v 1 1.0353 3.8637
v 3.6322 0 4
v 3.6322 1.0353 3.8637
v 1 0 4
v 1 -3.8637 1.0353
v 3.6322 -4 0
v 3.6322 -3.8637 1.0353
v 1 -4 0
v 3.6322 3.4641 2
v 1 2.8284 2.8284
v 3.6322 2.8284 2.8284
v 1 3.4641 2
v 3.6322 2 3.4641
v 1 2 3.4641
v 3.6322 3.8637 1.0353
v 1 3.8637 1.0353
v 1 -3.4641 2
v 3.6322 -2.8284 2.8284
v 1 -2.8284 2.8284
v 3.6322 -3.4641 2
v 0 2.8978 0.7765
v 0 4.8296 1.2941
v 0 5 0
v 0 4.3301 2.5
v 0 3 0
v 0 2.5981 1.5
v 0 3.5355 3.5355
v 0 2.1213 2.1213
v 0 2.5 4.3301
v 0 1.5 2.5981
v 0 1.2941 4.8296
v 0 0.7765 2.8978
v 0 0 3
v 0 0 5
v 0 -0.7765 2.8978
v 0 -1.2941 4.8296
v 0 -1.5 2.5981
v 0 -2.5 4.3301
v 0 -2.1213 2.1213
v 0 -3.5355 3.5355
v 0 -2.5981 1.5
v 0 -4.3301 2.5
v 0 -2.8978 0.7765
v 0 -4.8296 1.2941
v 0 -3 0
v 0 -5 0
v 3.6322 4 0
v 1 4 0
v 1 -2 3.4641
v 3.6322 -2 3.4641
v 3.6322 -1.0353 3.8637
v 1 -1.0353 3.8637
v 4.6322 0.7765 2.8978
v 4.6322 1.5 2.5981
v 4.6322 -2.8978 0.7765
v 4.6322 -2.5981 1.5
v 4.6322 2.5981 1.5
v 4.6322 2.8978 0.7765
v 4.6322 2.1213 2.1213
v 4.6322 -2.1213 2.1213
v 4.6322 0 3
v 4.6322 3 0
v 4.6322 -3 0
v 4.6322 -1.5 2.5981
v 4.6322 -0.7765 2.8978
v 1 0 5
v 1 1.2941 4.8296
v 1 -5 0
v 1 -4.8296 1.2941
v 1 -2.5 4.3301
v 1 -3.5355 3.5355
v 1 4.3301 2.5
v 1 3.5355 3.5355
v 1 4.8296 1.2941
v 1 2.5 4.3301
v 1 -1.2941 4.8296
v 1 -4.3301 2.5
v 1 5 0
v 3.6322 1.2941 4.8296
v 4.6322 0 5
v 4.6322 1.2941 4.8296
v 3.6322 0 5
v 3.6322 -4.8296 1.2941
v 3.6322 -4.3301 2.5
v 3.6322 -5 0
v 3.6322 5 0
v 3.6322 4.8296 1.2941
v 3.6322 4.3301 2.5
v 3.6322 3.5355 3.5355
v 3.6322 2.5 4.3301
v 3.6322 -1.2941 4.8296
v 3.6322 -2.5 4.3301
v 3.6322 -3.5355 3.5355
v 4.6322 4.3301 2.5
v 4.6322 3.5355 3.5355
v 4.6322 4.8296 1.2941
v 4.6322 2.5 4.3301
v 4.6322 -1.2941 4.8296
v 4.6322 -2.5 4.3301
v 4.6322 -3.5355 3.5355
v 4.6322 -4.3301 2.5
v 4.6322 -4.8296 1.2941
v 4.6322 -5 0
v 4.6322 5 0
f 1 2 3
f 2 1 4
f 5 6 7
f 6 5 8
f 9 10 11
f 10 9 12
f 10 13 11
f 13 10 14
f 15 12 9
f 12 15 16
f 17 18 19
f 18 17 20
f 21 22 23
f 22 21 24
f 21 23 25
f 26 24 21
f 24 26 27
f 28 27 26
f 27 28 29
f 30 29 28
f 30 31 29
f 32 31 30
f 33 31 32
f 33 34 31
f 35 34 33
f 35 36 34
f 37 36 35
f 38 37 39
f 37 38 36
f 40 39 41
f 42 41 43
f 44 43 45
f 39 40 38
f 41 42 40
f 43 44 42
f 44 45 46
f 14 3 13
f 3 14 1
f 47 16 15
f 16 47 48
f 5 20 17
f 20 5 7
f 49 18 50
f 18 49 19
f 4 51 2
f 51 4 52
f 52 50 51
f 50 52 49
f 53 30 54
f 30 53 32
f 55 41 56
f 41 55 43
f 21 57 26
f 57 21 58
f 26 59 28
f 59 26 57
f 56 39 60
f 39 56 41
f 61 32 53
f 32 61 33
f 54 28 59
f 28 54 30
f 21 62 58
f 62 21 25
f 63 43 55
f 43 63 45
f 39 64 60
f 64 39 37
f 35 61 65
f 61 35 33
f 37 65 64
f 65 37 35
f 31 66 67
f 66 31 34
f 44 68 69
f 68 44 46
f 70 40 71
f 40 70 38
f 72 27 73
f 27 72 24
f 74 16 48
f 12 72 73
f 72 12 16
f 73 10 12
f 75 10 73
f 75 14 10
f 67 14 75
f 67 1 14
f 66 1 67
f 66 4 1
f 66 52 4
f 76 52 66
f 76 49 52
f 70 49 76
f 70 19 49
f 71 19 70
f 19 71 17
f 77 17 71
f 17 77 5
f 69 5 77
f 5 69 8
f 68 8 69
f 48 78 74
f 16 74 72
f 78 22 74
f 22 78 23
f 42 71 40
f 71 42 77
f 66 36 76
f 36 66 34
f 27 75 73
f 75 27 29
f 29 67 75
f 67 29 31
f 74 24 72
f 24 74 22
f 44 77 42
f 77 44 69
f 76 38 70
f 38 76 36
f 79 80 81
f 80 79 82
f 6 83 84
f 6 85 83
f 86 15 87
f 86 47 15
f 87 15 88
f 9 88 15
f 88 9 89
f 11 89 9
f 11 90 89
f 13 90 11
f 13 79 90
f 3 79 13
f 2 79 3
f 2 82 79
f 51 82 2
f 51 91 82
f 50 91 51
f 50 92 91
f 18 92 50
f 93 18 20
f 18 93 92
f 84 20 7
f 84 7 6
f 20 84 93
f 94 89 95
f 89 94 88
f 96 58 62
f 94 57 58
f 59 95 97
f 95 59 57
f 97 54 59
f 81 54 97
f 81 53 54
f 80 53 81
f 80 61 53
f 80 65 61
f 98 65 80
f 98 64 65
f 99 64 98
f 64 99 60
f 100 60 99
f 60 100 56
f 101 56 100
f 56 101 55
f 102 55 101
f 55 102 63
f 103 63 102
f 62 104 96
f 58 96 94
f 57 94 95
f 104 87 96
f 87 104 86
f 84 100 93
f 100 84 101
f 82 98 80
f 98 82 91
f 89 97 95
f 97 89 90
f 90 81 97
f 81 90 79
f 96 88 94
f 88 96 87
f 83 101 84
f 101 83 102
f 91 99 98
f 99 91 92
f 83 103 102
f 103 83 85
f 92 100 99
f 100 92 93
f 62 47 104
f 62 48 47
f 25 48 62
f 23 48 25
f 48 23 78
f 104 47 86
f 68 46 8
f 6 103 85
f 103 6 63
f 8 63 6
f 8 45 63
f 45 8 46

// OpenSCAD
// file: ../build_environments.scad
// build_environments.scad: modules to build level sections
//

module pool(diameter=10.0, wall_height=2.0, step_width=3.0, connections=[])
{
    difference() {
        union() {
        difference() {
            cylinder(h=0.5,r1=diameter+step_width,r2=diameter+step_width,$fn=48);
            translate([0,0,-0.1])
                cylinder(h=0.7,r1=diameter,r2=diameter,$fn=48);
        }
        difference() {
            cylinder(h=wall_height,r1=diameter+step_width+1.0,r2=diameter+step_width+1.0,$fn=48);
            translate([0,0,-0.1])
                cylinder(h=wall_height+0.2,r1=diameter+step_width,r2=diameter+step_width,$fn=48);
        }
        }
    
        for (c = connections)
        {
            rotate([0,90,0]) {
                angle = atan2(c[1],c[0]);
                rotate([-angle,0,0]) {
                    cylinder(h=diameter+5.0,r1=c[2],r2=c[2],$fn=48);
                }
            }
        }
    }
}

module straight(length=10.0, width=2.0, dy1=0.0, dy2=0.0, dz=0.0)
{
    dims = [0, 0, 0, 0, 0, (dz/length)];
    matrix = [
        [ 1, dims[0], dims[1], 0 ],
        [ dims[2], 1, dims[4], 0 ],
        [ dims[5], dims[3], 1, 0 ],
        [ 0, 0, 0, 1 ]
    ];
    multmatrix(matrix)
    difference() {
        translate([dy1,0,0])
        union() {
            rotate([0,90,0]) {
                difference() {
                    cylinder(h=(length-dy1-dy2),r1=width+1.0,r2=width+1.0,$fn=24);
                    translate([0,0,-0.1])
                        cylinder(h=(length-dy1-dy2+0.2),r1=width,r2=width,$fn=24);
                }
                difference() {
                    cylinder(h=1.0,r1=width+2.0,r2=width+2.0,$fn=24);
                    translate([0,0,-0.1])
                        cylinder(h=1.2,r1=width,r2=width,$fn=24);
                }
                translate([0,0,(length-dy1-dy2)-1.0]) {
                    difference() {
                        cylinder(h=1.0,r1=width+2.0,r2=width+2.0,$fn=24);
                        translate([0,0,-0.1])
                            cylinder(h=1.2,r1=width,r2=width,$fn=24);
                    }
                }
            }
        }
        translate([0,0,-(2*width+4.0)/2])
            cube([3*length,3*length,2*width+4.0],center=true);
    }
}

module curve(p0=[0,0], center=[0,0], dir=1, angle=0.0, width=2.0)
{
    radius = sqrt((p0[0]-center[0])*(p0[0]-center[0]) + (p0[1]-center[1])*(p0[1]-center[1]));
    if (dir == 0) {
        difference() {
            rotate([0,0,-90])
            difference() {
                rotate_extrude(angle = angle, convexity = 10, $fn=32)
                    translate([radius, 0, 0])
                        circle(r = width+1.0,$fn=24);
                rotate([0,0,-1.0])
                    rotate_extrude(angle = angle+2.0, convexity = 10, $fn=32)
                        translate([radius, 0, 0])
                            circle(r = width,$fn=24);
            }
            translate([0,0,-(2*width+4.0)/2])
                cube([5*radius,5*radius,2*width+4.0],center=true);
        }
    }
    else {
        difference() {
            rotate([0,0,90])
            difference() {
                rotate_extrude(angle = -angle, convexity = 10, $fn=32)
                    translate([radius, 0, 0])
                        circle(r = width+1.0,$fn=24);
                rotate([0,0,1.0])
                    rotate_extrude(angle = -angle-2.0, convexity = 10, $fn=32)
                        translate([radius, 0, 0])
                            circle(r = width,$fn=24);
            }
            translate([0,0,-(2*width+4.0)/2])
                cube([5*radius,5*radius,2*width+4.0],center=true);
        }
    }

}

// test pool
//pool(diameter=12.0000, wall_height=3.0000, step_width=3.0000, connections=[[0.0000,-26.0000,2.0000], [23.6074,0.0000,2.0000]]);

// test straight, slope
//straight(length=26.0000, width=2.0000, dy1=11.8322, dy2=6.7082, dz=0.0000);
//straight(length=29.1549, width=12.0000, dy1=0.0000, dy2=0.0000, dz=-15.0000);

// test curve
//curve(p0=[23.6074, 0.0000], center=[23.6074, 5.0000], dir=0, angle=60.1011, width=2.0000);
//curve(p0=[33.6426, 12.4219], center=[37.9771, 9.9295], dir=1, angle=120.4627, width=2.0000);
// main file
use <../build_environments.scad>;
straight(length=4.6322, width=3.0000, dy1=0.0000, dy2=0.0000, dz=0.0000);
